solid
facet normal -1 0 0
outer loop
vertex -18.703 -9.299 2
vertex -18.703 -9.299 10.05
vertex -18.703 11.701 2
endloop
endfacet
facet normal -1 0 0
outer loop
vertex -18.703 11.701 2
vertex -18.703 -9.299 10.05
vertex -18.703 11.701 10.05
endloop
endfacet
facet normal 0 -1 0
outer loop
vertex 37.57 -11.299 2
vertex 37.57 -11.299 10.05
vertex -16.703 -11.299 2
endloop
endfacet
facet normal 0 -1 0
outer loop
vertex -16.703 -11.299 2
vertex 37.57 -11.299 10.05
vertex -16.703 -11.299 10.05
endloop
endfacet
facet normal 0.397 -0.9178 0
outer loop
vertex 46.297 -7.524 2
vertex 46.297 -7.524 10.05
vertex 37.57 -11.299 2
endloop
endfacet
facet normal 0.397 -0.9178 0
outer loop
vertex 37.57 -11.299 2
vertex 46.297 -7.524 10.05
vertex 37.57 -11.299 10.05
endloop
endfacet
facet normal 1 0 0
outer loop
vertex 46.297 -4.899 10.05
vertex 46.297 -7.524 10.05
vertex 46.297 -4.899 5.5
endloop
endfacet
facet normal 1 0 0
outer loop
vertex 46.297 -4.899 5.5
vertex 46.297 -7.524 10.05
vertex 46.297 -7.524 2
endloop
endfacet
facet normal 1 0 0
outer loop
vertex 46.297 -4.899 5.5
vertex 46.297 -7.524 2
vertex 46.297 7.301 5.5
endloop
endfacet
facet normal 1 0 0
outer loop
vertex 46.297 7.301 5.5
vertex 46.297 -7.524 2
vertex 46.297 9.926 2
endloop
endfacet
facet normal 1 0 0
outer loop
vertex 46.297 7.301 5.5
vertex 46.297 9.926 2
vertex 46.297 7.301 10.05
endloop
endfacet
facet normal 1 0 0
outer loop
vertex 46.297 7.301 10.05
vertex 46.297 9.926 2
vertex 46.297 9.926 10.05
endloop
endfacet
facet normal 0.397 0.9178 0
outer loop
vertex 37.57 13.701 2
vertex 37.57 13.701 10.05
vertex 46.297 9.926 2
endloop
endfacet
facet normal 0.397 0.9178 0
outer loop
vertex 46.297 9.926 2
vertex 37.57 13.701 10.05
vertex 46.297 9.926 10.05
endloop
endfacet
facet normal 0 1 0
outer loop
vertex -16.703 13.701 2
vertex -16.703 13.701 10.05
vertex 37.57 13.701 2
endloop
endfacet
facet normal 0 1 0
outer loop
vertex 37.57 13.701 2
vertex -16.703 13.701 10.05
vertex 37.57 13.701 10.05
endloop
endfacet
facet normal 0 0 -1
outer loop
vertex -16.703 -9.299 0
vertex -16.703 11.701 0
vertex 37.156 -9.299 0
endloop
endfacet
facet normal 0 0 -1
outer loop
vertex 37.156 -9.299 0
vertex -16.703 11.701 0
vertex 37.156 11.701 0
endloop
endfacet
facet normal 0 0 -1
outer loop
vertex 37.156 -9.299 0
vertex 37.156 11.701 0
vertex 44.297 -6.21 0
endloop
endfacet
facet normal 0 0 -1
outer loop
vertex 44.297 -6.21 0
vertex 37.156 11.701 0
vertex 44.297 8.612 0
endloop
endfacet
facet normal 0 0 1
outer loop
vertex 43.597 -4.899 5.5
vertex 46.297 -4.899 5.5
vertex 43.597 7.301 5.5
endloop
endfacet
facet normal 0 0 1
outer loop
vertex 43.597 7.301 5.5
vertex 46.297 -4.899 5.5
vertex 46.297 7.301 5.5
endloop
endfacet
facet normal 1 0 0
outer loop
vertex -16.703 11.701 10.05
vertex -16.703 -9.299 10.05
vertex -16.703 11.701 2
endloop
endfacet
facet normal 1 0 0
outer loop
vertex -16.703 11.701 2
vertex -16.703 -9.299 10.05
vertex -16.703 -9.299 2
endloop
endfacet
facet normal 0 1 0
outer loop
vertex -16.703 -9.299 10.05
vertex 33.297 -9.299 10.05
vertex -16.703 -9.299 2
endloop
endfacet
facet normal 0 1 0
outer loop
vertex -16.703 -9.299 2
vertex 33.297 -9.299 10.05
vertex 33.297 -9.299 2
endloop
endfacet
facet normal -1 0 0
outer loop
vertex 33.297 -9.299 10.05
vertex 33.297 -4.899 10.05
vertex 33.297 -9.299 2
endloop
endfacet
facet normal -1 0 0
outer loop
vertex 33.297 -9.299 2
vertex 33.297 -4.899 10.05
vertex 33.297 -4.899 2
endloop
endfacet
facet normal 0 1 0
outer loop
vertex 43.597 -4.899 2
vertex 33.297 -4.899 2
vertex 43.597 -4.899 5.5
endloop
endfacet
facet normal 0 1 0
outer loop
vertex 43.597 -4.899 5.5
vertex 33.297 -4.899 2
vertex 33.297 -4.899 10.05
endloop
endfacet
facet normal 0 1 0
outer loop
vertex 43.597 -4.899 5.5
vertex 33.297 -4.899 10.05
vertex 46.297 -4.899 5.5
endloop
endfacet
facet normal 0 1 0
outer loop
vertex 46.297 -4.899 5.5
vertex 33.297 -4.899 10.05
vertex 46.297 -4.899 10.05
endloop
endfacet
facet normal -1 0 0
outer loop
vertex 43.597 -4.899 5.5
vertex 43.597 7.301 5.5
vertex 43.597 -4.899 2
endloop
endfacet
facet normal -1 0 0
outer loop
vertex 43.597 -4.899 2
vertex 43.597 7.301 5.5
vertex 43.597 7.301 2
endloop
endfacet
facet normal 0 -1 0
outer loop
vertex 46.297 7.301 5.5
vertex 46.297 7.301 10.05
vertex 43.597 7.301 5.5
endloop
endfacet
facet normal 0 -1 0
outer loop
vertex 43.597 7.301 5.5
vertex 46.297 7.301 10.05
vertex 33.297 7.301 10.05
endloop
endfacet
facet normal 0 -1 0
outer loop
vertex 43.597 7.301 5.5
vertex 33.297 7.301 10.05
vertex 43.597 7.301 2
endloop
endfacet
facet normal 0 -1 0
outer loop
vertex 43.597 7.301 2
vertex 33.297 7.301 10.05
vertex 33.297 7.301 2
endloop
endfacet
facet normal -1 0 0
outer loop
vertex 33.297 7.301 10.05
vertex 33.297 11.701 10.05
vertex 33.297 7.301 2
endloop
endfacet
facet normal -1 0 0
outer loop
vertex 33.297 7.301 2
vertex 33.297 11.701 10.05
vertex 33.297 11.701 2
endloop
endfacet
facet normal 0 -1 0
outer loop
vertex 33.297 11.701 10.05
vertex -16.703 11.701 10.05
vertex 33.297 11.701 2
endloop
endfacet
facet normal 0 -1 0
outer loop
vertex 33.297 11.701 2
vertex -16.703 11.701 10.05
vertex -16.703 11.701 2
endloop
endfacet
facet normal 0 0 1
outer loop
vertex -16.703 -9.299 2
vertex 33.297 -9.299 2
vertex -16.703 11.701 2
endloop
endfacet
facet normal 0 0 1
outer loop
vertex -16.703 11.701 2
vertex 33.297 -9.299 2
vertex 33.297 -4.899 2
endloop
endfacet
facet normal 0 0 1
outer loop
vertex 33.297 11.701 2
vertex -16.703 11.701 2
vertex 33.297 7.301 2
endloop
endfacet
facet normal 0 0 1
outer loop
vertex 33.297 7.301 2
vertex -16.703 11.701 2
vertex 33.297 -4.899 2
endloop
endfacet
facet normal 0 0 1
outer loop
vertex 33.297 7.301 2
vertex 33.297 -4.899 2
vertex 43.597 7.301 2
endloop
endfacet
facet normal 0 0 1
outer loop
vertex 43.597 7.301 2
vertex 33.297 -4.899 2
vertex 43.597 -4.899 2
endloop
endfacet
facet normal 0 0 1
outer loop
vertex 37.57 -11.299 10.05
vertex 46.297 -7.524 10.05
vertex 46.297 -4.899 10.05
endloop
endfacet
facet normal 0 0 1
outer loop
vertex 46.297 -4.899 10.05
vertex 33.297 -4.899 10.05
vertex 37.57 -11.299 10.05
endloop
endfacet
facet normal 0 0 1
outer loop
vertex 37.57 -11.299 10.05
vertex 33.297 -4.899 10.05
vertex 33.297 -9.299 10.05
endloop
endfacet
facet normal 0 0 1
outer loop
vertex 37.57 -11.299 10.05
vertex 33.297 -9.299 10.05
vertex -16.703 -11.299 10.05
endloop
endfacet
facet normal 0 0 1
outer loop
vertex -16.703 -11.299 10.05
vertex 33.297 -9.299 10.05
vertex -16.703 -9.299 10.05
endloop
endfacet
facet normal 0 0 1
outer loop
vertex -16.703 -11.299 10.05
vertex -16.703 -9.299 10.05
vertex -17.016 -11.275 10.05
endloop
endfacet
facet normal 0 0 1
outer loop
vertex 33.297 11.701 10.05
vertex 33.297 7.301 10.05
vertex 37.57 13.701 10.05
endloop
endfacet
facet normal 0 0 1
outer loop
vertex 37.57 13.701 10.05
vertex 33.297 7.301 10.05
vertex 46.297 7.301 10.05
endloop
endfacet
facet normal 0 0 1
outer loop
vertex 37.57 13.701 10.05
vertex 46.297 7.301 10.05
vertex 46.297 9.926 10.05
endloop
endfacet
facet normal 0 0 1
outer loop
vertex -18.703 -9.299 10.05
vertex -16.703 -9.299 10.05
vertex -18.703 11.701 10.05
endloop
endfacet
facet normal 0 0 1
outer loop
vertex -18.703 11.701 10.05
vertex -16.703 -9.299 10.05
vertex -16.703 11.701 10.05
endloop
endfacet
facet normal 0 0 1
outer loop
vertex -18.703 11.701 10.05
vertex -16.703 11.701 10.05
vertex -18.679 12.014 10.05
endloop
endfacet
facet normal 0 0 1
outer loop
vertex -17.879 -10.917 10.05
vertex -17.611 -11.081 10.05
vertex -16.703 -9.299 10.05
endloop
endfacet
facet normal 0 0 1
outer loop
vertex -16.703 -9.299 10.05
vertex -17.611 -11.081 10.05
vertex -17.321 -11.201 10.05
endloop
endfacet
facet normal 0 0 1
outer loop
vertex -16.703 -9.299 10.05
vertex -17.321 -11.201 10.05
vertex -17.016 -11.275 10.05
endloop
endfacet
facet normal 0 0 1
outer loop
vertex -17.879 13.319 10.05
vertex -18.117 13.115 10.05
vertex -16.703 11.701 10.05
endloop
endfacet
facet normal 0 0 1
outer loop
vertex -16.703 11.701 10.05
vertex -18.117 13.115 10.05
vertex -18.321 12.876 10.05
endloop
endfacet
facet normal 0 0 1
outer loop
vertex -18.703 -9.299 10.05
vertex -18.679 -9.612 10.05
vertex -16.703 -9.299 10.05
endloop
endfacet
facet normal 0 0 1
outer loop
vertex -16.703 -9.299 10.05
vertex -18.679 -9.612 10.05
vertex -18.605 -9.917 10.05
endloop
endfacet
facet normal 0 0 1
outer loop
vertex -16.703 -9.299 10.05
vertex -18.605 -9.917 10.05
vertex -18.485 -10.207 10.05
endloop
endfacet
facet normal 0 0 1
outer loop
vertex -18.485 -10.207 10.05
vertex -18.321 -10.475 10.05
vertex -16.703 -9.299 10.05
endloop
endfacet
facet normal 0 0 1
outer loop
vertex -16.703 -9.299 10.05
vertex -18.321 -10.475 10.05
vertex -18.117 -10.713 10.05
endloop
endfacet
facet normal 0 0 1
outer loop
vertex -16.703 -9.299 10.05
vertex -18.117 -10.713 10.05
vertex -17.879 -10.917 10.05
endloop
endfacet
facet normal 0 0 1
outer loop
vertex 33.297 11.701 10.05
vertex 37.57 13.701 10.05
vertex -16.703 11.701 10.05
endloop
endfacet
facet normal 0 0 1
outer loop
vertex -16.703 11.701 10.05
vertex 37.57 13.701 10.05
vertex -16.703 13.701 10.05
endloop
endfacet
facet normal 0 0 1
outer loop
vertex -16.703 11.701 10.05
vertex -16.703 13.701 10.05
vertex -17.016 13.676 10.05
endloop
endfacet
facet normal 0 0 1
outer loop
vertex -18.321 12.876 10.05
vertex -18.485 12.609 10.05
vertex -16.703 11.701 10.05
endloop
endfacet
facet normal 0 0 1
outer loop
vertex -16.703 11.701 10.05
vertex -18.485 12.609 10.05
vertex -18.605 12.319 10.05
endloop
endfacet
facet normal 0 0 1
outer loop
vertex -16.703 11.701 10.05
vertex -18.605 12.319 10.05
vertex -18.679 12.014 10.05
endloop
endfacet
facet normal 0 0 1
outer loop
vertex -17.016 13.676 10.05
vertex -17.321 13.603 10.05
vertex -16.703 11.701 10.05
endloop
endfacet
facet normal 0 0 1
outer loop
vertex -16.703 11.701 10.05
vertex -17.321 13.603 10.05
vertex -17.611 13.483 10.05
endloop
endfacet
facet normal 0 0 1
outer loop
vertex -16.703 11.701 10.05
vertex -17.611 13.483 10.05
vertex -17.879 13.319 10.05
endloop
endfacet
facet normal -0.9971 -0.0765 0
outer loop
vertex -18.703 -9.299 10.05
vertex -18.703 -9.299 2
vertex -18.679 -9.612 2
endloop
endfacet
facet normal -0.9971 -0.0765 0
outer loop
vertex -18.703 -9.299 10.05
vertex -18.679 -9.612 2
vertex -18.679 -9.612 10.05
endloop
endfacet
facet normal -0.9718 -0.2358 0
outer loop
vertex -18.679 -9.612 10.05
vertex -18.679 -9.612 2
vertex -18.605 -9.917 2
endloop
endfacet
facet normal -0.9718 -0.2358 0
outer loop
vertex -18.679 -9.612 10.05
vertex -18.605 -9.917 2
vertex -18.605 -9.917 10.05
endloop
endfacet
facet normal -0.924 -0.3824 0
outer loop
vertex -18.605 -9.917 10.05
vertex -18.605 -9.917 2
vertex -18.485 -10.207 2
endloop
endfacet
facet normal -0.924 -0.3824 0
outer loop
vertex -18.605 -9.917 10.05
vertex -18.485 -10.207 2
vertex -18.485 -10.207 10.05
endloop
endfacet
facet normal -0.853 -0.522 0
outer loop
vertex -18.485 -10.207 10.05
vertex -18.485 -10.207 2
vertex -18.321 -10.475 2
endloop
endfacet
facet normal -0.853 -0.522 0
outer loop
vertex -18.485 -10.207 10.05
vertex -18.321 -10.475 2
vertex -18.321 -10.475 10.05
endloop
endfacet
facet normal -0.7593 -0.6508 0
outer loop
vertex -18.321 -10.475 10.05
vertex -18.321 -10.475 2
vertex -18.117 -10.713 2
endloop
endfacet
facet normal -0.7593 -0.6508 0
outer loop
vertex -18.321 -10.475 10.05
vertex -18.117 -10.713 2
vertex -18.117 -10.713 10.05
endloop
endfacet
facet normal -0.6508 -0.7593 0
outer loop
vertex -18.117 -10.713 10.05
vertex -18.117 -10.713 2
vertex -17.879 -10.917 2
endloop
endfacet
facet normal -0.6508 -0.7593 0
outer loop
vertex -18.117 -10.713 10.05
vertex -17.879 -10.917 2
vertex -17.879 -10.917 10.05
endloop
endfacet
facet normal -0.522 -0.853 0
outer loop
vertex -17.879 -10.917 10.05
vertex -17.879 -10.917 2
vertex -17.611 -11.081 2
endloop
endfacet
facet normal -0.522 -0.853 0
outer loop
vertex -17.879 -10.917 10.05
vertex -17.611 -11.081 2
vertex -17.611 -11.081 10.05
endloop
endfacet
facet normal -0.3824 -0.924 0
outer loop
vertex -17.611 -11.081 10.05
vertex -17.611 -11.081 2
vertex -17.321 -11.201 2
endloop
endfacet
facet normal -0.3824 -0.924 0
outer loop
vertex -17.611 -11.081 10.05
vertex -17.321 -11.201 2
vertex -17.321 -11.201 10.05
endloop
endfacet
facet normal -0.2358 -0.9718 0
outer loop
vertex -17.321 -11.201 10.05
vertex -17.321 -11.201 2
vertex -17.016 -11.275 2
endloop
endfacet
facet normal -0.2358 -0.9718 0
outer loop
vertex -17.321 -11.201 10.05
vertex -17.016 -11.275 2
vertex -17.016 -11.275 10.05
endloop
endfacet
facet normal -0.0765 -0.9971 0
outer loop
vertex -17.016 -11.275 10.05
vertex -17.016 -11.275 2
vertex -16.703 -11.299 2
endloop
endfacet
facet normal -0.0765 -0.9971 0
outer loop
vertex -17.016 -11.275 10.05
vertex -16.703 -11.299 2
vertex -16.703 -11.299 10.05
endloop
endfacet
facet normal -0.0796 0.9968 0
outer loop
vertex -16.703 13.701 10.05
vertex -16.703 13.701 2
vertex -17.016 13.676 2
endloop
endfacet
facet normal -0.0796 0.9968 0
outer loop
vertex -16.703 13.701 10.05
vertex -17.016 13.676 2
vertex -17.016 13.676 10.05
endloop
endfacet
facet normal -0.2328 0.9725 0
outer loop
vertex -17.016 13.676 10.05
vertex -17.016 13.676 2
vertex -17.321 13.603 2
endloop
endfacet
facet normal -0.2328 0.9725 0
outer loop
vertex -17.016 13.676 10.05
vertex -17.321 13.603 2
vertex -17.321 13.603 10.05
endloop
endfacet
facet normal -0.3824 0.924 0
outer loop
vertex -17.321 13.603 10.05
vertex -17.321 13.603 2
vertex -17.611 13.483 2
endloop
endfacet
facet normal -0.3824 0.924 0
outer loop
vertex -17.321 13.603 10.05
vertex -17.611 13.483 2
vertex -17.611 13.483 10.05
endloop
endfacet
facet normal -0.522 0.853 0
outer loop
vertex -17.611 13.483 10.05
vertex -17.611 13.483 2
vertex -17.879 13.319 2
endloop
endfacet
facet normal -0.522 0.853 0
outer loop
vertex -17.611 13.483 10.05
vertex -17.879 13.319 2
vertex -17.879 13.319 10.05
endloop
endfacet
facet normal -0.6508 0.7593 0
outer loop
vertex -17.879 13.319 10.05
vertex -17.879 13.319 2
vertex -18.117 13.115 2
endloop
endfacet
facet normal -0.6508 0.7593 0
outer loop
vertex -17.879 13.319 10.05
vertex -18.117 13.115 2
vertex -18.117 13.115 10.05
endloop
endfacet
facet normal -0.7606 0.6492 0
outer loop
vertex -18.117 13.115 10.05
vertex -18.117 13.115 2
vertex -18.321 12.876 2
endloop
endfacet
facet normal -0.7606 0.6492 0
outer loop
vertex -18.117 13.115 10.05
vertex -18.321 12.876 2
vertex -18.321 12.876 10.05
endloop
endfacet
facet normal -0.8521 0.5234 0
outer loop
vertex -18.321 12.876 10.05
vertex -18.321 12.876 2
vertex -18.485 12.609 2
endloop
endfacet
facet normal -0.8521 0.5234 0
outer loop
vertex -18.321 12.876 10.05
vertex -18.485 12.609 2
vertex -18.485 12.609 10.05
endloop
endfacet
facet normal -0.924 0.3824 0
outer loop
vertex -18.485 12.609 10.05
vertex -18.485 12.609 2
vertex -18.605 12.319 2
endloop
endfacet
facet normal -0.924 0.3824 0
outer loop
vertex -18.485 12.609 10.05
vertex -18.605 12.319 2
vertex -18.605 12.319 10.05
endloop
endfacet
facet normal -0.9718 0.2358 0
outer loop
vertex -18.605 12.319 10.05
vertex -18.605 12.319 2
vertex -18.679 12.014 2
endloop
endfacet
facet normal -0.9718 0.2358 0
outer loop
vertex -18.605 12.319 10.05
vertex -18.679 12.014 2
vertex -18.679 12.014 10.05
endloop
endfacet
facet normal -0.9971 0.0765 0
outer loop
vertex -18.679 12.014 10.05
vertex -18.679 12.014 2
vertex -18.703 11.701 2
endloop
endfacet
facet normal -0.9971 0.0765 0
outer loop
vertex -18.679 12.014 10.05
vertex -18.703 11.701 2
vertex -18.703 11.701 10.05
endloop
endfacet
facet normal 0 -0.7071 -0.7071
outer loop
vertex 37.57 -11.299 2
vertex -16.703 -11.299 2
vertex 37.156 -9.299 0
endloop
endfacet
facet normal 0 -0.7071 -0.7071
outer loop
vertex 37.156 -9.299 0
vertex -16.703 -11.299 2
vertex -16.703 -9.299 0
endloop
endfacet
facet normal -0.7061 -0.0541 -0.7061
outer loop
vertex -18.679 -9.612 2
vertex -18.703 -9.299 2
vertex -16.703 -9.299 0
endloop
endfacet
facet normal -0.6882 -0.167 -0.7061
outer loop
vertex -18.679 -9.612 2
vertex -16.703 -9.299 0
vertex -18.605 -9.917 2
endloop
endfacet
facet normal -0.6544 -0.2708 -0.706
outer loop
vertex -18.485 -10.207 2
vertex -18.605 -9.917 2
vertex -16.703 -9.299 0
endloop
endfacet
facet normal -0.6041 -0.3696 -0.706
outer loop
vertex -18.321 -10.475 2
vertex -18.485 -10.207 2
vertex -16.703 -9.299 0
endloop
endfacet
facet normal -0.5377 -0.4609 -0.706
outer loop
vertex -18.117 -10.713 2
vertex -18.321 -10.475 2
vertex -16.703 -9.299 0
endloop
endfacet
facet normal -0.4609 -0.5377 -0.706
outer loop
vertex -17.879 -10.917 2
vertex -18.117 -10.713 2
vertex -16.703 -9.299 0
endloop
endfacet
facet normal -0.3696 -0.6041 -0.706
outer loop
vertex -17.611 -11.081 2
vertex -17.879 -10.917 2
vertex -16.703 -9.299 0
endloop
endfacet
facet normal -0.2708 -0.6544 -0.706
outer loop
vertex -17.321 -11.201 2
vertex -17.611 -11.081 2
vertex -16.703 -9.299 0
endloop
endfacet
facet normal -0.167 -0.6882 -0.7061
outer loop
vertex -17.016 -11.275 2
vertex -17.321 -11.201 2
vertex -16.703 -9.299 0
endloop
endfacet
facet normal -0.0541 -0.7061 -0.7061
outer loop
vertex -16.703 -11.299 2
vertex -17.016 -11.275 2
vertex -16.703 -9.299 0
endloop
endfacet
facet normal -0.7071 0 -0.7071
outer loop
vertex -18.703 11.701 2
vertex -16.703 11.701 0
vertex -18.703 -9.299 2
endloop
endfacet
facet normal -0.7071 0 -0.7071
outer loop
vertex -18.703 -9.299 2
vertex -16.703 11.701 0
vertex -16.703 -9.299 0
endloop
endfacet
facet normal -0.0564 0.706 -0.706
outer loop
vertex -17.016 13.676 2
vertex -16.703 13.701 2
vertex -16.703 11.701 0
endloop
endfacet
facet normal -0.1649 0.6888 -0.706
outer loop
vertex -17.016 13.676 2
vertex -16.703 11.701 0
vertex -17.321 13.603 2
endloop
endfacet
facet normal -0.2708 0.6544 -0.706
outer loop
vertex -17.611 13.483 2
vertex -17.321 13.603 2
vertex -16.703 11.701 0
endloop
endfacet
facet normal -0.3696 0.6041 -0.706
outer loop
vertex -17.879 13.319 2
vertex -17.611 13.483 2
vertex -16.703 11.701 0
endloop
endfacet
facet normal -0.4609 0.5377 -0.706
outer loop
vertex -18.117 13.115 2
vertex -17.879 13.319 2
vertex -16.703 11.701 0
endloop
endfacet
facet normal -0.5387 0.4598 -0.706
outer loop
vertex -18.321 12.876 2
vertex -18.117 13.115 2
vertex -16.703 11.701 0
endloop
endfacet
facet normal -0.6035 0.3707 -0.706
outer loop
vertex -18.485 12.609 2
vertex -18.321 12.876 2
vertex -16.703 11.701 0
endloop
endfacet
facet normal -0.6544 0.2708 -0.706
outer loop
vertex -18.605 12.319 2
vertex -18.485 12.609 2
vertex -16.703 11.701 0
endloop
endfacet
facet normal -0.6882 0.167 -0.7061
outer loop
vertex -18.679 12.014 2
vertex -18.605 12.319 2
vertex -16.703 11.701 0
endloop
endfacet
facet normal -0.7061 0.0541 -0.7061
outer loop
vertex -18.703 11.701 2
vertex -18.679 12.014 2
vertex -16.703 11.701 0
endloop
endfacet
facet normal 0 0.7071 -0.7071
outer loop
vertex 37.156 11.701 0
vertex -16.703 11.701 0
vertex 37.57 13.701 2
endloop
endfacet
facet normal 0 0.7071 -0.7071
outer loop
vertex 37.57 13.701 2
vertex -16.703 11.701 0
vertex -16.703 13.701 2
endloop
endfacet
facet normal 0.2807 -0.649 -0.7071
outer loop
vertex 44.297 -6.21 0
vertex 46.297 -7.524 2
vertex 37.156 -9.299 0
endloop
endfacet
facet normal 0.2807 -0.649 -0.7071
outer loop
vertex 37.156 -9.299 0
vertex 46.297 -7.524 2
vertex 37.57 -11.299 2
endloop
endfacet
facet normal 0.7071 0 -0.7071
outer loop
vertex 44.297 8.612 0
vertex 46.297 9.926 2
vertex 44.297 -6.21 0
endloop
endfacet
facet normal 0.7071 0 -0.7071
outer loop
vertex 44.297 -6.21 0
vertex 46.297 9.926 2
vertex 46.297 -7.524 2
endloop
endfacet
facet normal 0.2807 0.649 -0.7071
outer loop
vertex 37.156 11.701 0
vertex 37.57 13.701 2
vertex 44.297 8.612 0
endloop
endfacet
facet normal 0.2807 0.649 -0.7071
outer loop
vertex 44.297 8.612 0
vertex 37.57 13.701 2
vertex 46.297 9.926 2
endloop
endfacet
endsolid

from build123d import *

# Parameters (mm, degrees)
EXTRUDE_1_DEPTH = 2
EXTRUDE_2_DEPTH = 3.5
EXTRUDE_3_DEPTH = 4.55
FILLET_1_R      = 2
CHAMFER_1_SIZE  = 2
CHAMFER_2_SIZE  = 2


with BuildPart() as part:
    # Эскиз1 → Бобышка-Вытянуть1 (new body)
    with BuildSketch(Plane.XY):
        Polygon((46.296875, 9.92578125), (37.5703125, 13.70078125), (-18.703125, 13.70078125), (-18.703125, -11.29921875), (37.5703125, -11.29921875), (46.296875, -7.52421875), align=None)
    extrude(amount=EXTRUDE_1_DEPTH)

    # Эскиз2 → Бобышка-Вытянуть2 (add)
    with BuildSketch(Plane.XY.offset(2)):
        Polygon((-18.703125, -11.29921875), (37.5703125, -11.29921875), (46.296875, -7.52421875), (46.296875, 9.92578125), (37.5703125, 13.70078125), (-18.703125, 13.70078125), align=None)
        Polygon((-16.703125, 11.70078125), (33.296875, 11.70078125), (33.296875, 7.30078125), (43.596875, 7.30078125), (43.596875, -4.89921875), (33.296875, -4.89921875), (33.296875, -9.29921875), (-16.703125, -9.29921875), align=None, mode=Mode.SUBTRACT)
    extrude(amount=EXTRUDE_2_DEPTH)

    # Эскиз3 → Бобышка-Вытянуть3 (add)
    with BuildSketch(Plane.XY.offset(5.5)):
        Polygon((-18.703125, 13.70078125), (-18.703125, -11.29921875), (37.5703125, -11.29921875), (46.296875, -7.52421875), (46.296875, -4.89921875), (33.296875, -4.89921875), (33.296875, -9.29921875), (-16.703125, -9.29921875), (-16.703125, 11.70078125), (33.296875, 11.70078125), (33.296875, 7.30078125), (46.296875, 7.30078125), (46.296875, 9.92578125), (37.5703125, 13.70078125), align=None)
    extrude(amount=EXTRUDE_3_DEPTH)

    # Скругление1
    fillet_1_edges = [part.edges().sort_by_distance(p)[0] for p in [
        (-18.703125, 13.70078125, 5.025),
        (-18.703125, -11.29921875, 5.025),
    ]]
    fillet(fillet_1_edges, radius=FILLET_1_R)

    # Фаска1
    chamfer_1_edges = [part.edges().sort_by_distance(p)[0] for p in [
        (10.43359375, 13.70078125, 0),
        (10.43359375, -11.29921875, 0),
        (-18.703125, 1.20078125, 0),
        (-18.117338562, 13.114994812, 0),
        (-18.117338562, -10.713432312, 0),
    ]]
    chamfer(chamfer_1_edges, length=CHAMFER_1_SIZE)

    # Фаска2
    chamfer_2_edges = [part.edges().sort_by_distance(p)[0] for p in [
        (44.245265935, 10.81328125, 0),
        (46.296875, 1.20078125, 0),
        (44.245265935, -8.41171875, 0),
    ]]
    chamfer(chamfer_2_edges, length=CHAMFER_2_SIZE)


solid = part.part
